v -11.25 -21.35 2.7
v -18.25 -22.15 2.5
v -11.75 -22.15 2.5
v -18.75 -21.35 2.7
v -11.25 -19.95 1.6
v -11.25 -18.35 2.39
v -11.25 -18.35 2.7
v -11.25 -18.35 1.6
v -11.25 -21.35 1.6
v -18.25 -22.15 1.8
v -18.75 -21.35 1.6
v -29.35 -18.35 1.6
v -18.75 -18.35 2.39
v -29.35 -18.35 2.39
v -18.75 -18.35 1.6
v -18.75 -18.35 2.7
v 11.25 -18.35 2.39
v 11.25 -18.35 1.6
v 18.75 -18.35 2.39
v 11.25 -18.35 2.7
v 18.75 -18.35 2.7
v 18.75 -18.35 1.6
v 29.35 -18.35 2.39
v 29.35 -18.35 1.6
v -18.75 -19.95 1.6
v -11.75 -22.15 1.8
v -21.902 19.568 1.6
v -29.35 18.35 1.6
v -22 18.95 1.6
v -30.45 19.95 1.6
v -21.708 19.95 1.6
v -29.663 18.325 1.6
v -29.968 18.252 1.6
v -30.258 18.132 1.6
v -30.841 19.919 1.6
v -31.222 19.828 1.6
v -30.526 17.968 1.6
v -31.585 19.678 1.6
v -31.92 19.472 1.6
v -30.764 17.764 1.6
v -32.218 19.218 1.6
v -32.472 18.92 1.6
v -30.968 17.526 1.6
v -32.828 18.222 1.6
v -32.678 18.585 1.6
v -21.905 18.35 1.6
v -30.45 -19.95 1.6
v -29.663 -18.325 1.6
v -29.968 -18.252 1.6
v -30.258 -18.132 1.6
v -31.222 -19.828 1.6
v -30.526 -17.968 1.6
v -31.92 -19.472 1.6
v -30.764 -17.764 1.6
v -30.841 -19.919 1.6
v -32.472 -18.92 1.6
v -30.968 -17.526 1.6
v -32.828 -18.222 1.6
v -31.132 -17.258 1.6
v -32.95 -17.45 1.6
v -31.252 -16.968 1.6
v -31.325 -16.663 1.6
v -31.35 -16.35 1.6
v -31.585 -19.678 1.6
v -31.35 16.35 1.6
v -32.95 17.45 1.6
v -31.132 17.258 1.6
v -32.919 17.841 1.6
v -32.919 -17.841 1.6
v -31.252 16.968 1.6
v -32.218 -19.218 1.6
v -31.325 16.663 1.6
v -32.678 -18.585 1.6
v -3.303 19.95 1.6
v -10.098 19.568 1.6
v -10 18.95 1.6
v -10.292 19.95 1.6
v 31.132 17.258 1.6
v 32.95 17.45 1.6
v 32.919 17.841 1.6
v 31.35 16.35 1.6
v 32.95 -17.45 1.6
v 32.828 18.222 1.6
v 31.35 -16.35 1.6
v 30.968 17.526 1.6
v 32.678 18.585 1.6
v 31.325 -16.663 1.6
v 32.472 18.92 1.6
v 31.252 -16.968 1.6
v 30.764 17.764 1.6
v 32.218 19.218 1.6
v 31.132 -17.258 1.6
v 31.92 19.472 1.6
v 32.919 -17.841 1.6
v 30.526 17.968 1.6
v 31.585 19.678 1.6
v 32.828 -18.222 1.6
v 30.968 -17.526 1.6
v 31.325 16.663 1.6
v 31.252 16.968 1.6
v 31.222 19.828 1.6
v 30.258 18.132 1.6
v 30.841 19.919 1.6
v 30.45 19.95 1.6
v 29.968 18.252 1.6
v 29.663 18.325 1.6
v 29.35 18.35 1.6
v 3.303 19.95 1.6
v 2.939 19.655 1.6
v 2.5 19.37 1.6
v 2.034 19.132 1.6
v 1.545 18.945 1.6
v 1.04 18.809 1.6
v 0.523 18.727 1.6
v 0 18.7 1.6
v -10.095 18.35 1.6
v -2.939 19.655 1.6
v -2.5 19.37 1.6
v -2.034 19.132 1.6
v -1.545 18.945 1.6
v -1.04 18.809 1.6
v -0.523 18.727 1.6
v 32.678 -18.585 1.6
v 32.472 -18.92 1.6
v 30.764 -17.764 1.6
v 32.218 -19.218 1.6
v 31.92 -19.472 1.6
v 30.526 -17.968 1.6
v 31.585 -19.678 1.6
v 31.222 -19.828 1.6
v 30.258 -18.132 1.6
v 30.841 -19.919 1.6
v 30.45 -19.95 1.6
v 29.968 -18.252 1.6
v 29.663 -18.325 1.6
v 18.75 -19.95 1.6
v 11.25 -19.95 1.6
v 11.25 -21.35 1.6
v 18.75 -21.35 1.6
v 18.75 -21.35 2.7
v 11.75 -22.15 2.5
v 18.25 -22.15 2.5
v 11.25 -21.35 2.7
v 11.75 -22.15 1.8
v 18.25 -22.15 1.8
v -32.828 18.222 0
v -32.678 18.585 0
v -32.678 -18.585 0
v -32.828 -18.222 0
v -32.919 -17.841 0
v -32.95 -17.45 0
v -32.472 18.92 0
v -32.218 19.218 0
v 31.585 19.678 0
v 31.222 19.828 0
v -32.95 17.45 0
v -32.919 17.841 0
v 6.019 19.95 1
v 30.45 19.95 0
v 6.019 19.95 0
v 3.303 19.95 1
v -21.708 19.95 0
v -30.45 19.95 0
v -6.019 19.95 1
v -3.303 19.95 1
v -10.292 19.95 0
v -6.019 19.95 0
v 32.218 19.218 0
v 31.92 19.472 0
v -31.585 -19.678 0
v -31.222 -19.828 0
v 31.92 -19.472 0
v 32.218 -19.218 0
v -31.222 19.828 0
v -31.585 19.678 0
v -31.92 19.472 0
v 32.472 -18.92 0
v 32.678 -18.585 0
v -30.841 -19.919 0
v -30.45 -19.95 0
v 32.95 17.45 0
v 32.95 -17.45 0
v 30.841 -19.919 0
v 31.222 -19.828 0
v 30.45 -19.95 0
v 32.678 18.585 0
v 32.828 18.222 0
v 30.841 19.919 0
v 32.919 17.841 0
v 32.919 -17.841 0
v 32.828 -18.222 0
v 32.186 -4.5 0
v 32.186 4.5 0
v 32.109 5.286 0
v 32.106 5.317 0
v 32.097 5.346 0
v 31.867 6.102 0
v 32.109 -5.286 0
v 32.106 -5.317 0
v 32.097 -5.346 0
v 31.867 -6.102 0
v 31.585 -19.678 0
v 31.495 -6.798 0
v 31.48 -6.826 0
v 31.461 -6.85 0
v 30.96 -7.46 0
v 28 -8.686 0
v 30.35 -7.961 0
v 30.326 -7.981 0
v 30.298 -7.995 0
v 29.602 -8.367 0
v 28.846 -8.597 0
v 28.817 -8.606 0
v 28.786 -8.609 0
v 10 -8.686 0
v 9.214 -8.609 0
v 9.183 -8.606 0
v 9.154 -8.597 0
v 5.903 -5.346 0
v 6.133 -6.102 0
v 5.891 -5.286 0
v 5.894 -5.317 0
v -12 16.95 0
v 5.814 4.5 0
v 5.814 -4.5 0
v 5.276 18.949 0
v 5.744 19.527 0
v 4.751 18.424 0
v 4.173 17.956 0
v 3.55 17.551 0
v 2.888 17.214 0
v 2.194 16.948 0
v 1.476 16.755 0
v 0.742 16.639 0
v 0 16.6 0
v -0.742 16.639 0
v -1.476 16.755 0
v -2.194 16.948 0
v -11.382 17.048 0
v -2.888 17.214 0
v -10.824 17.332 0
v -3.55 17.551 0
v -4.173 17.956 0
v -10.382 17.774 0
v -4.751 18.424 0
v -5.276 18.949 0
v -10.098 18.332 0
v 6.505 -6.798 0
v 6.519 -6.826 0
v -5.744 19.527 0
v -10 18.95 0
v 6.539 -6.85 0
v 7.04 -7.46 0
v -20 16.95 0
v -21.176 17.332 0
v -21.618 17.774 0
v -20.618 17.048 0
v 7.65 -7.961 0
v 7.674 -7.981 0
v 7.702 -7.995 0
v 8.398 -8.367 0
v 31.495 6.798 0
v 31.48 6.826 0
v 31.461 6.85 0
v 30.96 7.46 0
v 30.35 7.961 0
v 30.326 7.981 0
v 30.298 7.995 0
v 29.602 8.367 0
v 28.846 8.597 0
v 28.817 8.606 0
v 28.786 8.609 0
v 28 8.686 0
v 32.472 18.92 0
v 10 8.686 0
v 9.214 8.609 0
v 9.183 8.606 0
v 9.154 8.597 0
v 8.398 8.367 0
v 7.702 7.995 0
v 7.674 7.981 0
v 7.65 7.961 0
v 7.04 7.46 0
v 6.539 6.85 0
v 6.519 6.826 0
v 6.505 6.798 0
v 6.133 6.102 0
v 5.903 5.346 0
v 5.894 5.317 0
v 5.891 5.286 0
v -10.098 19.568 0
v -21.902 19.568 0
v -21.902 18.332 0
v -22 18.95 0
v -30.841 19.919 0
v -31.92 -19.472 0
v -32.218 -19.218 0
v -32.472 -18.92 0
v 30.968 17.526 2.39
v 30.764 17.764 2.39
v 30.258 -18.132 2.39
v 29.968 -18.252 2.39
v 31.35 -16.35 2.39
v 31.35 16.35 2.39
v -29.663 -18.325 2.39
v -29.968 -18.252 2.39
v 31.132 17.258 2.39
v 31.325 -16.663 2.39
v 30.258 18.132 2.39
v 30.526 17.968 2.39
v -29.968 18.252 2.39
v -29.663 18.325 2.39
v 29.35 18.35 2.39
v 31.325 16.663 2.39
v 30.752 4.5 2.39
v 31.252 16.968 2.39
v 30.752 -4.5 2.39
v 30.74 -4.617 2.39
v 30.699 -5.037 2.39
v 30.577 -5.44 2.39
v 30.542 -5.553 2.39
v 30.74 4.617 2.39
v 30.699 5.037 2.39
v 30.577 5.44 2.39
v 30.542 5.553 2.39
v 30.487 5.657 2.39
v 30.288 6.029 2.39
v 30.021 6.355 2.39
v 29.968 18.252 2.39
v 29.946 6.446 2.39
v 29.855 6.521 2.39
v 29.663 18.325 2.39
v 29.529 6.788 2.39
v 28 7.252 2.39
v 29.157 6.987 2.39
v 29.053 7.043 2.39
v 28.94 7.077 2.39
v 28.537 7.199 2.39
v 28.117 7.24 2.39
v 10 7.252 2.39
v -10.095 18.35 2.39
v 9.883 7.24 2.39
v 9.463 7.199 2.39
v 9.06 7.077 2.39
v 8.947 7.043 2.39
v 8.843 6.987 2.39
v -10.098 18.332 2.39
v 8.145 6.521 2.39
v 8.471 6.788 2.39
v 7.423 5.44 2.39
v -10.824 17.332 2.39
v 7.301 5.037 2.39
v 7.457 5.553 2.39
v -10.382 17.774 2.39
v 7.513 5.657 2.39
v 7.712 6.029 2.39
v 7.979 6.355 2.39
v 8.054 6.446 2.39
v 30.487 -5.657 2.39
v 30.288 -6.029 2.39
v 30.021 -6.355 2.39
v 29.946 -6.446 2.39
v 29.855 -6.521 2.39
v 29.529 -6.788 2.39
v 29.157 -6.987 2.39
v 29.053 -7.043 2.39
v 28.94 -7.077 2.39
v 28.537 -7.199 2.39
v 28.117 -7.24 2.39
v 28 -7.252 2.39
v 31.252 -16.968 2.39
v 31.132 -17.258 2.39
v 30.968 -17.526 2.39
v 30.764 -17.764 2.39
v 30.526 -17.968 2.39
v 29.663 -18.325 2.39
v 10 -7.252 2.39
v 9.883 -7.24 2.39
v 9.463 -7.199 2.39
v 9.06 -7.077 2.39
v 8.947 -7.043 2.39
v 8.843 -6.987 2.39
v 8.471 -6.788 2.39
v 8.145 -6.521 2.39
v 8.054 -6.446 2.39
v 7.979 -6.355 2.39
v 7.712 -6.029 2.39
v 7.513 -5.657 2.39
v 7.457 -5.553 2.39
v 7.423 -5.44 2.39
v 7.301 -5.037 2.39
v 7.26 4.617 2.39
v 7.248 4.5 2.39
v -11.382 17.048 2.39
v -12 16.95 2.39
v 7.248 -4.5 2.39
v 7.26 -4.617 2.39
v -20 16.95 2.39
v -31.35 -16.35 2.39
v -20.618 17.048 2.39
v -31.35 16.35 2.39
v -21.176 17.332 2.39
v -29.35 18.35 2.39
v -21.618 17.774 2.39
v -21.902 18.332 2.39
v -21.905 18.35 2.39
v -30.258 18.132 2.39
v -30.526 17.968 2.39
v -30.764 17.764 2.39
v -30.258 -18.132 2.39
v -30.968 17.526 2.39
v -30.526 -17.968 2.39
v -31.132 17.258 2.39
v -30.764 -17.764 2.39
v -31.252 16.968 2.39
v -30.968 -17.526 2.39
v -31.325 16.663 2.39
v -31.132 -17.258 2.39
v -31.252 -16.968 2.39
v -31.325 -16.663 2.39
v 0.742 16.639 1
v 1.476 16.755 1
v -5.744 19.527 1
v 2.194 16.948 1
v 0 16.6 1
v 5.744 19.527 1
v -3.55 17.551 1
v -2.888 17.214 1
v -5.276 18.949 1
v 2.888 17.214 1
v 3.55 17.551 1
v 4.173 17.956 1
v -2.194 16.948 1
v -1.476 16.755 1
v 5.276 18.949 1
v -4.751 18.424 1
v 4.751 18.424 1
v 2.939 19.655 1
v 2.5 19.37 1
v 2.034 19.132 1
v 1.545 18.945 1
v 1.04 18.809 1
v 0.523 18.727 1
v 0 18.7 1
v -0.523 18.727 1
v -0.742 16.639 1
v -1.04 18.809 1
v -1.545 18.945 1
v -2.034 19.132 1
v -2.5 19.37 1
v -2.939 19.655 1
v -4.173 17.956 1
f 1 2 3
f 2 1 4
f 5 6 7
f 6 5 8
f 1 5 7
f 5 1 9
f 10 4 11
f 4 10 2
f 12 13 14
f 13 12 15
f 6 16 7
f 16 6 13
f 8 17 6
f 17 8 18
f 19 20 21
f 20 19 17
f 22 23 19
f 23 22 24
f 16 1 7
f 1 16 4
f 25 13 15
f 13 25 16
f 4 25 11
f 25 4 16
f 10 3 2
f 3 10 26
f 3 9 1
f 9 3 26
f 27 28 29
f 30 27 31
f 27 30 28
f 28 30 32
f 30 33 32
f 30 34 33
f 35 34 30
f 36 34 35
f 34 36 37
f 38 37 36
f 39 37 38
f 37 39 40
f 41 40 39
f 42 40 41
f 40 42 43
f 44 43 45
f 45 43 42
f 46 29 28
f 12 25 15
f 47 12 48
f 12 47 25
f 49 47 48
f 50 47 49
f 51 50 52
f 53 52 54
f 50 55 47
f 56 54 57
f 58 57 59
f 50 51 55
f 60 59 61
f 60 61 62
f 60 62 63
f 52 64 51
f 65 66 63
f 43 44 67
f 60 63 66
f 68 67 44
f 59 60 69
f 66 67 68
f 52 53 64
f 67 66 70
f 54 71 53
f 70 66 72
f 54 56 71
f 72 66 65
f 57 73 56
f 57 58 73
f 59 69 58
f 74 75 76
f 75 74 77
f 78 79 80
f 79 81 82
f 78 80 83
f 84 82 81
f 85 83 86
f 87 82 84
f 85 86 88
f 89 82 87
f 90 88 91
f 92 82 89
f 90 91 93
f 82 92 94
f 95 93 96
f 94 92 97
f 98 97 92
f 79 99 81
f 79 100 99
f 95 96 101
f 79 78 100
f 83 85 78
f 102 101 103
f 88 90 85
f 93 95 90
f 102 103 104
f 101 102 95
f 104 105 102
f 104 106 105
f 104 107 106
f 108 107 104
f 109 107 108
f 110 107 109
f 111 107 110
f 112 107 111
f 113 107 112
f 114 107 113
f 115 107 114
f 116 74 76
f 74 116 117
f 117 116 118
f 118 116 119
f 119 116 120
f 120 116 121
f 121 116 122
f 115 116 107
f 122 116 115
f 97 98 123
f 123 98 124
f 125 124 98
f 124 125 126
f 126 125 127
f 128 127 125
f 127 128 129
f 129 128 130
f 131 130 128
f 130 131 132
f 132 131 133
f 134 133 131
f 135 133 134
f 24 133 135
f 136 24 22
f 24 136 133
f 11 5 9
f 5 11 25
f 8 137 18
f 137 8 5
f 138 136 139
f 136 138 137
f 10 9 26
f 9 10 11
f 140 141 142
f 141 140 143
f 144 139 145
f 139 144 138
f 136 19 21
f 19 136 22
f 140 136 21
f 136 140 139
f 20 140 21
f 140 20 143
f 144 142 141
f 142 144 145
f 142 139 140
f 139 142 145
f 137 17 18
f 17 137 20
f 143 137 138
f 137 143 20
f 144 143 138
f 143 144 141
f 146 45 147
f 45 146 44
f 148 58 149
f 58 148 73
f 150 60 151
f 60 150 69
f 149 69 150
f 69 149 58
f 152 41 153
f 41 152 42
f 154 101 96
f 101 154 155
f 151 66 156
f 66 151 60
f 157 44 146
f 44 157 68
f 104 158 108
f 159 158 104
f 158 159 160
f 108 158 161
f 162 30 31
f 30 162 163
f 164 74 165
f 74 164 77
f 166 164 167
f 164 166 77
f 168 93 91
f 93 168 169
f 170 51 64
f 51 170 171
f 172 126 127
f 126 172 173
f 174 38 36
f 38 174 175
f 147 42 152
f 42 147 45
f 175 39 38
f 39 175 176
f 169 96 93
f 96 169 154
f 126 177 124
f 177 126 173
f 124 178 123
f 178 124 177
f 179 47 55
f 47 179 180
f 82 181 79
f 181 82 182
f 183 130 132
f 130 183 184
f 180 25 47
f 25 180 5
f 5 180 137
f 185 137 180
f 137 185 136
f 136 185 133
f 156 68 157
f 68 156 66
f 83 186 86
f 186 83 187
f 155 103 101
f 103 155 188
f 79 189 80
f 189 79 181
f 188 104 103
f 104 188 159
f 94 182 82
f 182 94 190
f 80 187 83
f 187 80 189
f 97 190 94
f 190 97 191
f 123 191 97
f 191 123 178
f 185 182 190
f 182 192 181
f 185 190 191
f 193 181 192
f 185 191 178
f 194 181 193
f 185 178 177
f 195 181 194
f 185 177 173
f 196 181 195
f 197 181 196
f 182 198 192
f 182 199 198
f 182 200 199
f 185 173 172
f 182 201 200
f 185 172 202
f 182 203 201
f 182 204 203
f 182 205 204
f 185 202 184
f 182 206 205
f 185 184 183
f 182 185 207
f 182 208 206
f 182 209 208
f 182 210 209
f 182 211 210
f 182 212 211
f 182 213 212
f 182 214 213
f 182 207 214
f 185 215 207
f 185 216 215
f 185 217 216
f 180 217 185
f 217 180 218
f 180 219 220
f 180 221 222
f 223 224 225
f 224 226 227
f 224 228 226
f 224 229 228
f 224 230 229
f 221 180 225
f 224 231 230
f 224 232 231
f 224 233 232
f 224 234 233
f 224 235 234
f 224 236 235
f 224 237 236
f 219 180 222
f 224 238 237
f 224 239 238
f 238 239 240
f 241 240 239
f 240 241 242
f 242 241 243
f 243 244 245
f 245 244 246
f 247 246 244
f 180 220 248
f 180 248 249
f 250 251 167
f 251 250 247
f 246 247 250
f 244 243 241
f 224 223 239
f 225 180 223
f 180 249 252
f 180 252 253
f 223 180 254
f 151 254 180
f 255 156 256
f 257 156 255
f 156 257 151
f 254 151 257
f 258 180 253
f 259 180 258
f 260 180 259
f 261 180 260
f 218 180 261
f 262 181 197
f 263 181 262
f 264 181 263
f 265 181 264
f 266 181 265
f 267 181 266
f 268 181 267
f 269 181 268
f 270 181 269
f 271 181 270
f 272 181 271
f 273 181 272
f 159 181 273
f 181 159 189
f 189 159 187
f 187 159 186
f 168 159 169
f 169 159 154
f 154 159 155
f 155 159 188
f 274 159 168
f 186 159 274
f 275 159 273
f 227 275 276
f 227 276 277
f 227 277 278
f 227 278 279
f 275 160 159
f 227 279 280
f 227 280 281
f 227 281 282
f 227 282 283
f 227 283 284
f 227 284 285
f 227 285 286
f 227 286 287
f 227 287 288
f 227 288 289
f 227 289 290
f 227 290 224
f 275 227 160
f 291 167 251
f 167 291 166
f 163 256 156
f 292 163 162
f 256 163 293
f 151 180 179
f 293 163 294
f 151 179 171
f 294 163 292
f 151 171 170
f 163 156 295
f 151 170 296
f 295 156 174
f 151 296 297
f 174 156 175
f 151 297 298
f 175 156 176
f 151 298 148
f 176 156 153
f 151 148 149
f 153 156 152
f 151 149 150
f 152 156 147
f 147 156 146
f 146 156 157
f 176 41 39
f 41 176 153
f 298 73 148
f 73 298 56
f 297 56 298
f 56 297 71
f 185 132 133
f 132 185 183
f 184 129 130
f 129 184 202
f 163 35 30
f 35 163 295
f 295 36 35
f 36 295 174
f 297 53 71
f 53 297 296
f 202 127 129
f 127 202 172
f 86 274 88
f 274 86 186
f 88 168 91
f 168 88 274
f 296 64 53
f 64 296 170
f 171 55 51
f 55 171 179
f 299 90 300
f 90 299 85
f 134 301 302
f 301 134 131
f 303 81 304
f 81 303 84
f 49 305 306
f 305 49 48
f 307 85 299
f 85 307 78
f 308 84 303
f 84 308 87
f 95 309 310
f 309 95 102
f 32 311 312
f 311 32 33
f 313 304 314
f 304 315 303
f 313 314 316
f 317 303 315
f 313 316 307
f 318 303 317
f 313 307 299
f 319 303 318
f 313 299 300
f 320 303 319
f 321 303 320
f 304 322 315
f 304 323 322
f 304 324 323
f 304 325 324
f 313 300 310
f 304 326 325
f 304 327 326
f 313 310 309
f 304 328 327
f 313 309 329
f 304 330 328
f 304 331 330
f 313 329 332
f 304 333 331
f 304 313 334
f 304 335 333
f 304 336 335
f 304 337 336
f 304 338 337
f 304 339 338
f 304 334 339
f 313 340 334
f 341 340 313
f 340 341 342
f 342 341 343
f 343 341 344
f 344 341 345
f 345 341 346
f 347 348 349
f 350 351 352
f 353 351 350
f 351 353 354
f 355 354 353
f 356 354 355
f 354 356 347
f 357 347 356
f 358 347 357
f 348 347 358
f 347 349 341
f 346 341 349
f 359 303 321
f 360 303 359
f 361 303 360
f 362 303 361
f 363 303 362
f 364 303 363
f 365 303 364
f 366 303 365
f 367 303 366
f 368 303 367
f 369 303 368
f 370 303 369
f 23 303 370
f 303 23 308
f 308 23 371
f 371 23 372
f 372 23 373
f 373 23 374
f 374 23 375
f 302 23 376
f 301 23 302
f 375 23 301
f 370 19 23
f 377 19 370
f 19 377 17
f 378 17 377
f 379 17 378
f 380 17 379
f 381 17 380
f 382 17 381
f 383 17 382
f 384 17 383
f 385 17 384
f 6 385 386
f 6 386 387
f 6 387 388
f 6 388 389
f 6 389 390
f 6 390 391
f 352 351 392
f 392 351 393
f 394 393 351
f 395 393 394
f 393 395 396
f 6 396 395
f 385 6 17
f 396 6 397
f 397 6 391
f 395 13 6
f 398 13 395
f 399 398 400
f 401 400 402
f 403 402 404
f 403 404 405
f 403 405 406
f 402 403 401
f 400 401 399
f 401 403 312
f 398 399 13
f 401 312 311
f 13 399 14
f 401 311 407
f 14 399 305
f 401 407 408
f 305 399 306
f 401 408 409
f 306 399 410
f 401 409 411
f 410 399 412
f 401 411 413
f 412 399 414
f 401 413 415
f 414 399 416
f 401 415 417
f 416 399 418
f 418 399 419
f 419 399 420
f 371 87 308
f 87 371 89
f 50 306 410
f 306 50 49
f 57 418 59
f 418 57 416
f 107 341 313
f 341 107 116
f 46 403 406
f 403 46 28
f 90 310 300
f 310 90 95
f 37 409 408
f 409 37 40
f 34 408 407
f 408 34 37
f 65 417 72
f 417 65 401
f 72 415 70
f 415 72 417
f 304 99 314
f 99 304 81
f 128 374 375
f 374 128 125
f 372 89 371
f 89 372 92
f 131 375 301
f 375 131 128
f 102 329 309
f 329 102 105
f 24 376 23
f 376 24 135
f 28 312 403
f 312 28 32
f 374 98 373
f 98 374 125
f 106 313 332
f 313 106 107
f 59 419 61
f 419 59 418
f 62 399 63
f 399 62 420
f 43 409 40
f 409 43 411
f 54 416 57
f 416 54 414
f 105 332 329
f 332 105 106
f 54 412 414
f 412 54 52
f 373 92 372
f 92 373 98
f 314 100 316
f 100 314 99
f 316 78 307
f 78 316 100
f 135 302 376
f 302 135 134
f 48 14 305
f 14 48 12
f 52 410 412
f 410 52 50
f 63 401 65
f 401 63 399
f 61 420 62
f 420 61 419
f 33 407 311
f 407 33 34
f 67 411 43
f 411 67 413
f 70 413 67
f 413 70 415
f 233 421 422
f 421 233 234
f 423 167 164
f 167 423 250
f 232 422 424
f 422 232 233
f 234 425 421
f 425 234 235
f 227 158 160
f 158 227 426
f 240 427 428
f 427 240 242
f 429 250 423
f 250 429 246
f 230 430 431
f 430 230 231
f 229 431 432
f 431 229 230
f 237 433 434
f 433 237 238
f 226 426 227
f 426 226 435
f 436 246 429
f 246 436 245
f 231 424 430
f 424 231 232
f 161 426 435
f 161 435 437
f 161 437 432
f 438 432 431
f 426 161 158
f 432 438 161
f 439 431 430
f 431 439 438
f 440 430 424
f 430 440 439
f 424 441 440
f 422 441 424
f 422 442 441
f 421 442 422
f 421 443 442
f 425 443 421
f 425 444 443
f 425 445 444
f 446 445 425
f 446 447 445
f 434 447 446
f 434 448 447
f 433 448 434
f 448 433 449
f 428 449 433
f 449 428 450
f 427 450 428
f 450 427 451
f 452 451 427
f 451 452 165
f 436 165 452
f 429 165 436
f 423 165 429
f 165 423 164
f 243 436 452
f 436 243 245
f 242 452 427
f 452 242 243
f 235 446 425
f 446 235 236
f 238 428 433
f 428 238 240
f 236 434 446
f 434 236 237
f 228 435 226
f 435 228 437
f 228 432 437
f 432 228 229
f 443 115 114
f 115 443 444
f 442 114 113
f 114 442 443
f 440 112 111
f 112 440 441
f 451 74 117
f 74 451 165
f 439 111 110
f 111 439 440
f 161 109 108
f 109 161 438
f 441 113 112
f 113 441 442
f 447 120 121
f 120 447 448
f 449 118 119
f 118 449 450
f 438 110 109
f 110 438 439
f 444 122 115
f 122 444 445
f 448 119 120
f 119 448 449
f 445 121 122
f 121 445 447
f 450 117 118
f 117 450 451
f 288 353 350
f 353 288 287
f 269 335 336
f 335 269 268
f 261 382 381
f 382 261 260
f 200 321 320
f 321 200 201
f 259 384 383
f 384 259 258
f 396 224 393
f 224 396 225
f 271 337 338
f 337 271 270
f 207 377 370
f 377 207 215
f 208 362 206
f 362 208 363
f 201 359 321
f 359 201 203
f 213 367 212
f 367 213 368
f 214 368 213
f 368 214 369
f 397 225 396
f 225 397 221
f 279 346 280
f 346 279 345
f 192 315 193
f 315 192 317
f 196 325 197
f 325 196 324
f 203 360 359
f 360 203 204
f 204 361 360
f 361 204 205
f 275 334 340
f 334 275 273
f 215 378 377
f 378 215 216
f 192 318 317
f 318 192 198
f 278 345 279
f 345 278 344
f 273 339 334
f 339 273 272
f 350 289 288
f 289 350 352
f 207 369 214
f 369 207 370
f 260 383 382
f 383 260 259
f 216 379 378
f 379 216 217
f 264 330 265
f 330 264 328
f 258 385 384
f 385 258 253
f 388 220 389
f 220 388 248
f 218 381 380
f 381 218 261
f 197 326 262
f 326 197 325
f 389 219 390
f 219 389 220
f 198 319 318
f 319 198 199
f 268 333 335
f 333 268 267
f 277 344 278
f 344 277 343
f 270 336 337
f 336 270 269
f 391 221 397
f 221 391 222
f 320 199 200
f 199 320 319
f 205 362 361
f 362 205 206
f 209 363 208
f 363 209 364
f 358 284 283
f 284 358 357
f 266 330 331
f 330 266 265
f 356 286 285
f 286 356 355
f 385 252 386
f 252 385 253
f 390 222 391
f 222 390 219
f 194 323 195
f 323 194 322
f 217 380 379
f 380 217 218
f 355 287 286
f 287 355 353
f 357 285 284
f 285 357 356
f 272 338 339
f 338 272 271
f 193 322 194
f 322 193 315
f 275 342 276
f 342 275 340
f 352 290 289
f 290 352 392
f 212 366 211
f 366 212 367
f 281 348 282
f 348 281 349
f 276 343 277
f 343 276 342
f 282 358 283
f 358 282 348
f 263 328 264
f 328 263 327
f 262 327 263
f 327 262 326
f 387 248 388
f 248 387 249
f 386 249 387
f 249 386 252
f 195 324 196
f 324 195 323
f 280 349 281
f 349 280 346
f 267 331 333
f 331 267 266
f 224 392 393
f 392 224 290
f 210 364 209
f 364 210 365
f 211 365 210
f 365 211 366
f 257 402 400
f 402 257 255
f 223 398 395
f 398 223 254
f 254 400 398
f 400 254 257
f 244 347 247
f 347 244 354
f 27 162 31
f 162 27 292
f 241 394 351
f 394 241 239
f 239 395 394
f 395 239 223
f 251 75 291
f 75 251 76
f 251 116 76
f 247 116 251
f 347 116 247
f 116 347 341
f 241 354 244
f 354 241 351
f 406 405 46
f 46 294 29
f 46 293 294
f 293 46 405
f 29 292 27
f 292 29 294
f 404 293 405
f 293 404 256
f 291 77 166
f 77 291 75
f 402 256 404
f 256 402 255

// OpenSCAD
// ==========================================
// ConnectedDoll2 Battery Lid (battery_lid.scad)
// 回転ロック式 底面電池フタ
// ==========================================

include <params.scad>;

module battery_switch_cutout() {
    // スイッチ操作開口窓 (すり鉢状テーパー面取り付き、全層完全貫通)
    hull() {
        for (dx = [-batt_sw_w/2 + batt_sw_r, batt_sw_w/2 - batt_sw_r]) {
            for (dy = [-batt_sw_d/2 + batt_sw_r, batt_sw_d/2 - batt_sw_r]) {
                // 底面外側 (広大なすり鉢状面取り)
                translate([dx, dy, -0.2])
                    cylinder(h=0.01, r=batt_sw_r + batt_sw_chamfer, $fn=32);
                // 内部側貫通 (内側ステップも含めて確実に全層抜く)
                translate([dx, dy, batt_lid_t + 1.2])
                    cylinder(h=0.01, r=batt_sw_r, $fn=32);
            }
        }
    }
}

module battery_lid() {
    dial_rel_y = rotary_pos_y - batt_pos_y; // ダイヤル中心のフタ中心からの相対Y座標 (23.7mm)
    cam_shelf_r = rotary_dial_d / 2 - rotary_cam_overlap; // 4.7mm (Dカット逃げ半径)

    difference() {
        union() {
            // 1. フタ本体ベースプレート (厚み batt_lid_t = 1.6mm, 角丸 R=2.5mm)
            translate([-batt_lid_w/2, -batt_lid_d/2, 0])
                rounded_cube([batt_lid_w, batt_lid_d, batt_lid_t], 2.5);

            // 2. 内側位置決めステップ (深さ0.8mm: 開口部 64x38mm 内側に全周0.65mm隙間で嵌合、干渉防止)
            step_w = batt_bay_w - batt_lid_step_margin * 2;
            step_d = batt_bay_d - batt_lid_step_margin * 2;
            translate([-step_w/2, -step_d/2, batt_lid_t - 0.01])
                rounded_cube([step_w, step_d, 0.8], 2.0);

            // 3. 手前側 アンダーカット差し込み係止ツメ (左右2箇所: 裏面ステップ Z=1.6mm〜2.7mmから手前へ突出)
            step_front_y = -step_d / 2; // 内側ステップ手前端面 (-18.35mm)
            tab_tip_y = -batt_lid_d / 2 - batt_tab_d; // ツメ先端Y座標 (-22.15mm: ベース手前端より手前へ2.2mm突出)
            tab_total_d = step_front_y - tab_tip_y;   // ツメ総前後長 (約3.8mm: ステップと強固に一体化)

            for (dx = [-batt_tab_pitch / 2, batt_tab_pitch / 2]) {
                translate([dx - batt_tab_w / 2, tab_tip_y, batt_tab_z]) {
                    hull() {
                        // 根元側（ステップ手前壁と完全一体化）
                        translate([0, tab_total_d - 0.01, 0])
                            cube([batt_tab_w, 0.01, batt_tab_t]);
                        // 先端側（上下・左右に斜め差し込み用スムーズ導入テーパー付き）
                        translate([0.5, 0, 0.2])
                            cube([batt_tab_w - 1.0, 0.01, batt_tab_t - 0.4]);
                        // 中間部
                        translate([0, 0.8, 0])
                            cube([batt_tab_w, 0.01, batt_tab_t]);
                    }
                }
            }
        }

        // 4. スイッチ操作開口窓 (全層完全貫通)
        translate([batt_sw_offset_x, batt_sw_offset_y, 0])
            battery_switch_cutout();

        // 5. 奥側 回転ロック受け円弧ポケット & カム通過貫通穴
        translate([rotary_pos_x, dial_rel_y, 0]) {
            // (a) ダイヤルツバ受座シェルフ (深さ rotary_cam_shelf_z = 1.0mm: シェルフ厚み 0.6mm を保持、外周クリアランス+0.6mmへ拡大)
            translate([0, 0, -0.2])
                cylinder(h=rotary_cam_shelf_z + 0.2, r=rotary_dial_d / 2 + 0.6, $fn=60);
            // (b) カム解錠時通過貫通穴 (半径 cam_shelf_r = 5.0mm: 全層貫通、通過クリアランス拡大)
            translate([0, 0, -0.2])
                cylinder(h=batt_lid_t + 2.0, r=cam_shelf_r + 0.3, $fn=60);
        }

        // 6. 指掛けネイルノッチ (奥側フタ端面: 爪でフタを持ち上げやすくする凹み)
        translate([-16.0, batt_lid_d/2 - 1.0, -0.1])
            hull() {
                translate([-4.0, 0, 0]) cylinder(h=batt_lid_t + 1.0, r=2.0, $fn=20);
                translate([4.0, 0, 0]) cylinder(h=batt_lid_t + 1.0, r=2.0, $fn=20);
            }
    }
}

// 単体プレビュー描画
battery_lid();
